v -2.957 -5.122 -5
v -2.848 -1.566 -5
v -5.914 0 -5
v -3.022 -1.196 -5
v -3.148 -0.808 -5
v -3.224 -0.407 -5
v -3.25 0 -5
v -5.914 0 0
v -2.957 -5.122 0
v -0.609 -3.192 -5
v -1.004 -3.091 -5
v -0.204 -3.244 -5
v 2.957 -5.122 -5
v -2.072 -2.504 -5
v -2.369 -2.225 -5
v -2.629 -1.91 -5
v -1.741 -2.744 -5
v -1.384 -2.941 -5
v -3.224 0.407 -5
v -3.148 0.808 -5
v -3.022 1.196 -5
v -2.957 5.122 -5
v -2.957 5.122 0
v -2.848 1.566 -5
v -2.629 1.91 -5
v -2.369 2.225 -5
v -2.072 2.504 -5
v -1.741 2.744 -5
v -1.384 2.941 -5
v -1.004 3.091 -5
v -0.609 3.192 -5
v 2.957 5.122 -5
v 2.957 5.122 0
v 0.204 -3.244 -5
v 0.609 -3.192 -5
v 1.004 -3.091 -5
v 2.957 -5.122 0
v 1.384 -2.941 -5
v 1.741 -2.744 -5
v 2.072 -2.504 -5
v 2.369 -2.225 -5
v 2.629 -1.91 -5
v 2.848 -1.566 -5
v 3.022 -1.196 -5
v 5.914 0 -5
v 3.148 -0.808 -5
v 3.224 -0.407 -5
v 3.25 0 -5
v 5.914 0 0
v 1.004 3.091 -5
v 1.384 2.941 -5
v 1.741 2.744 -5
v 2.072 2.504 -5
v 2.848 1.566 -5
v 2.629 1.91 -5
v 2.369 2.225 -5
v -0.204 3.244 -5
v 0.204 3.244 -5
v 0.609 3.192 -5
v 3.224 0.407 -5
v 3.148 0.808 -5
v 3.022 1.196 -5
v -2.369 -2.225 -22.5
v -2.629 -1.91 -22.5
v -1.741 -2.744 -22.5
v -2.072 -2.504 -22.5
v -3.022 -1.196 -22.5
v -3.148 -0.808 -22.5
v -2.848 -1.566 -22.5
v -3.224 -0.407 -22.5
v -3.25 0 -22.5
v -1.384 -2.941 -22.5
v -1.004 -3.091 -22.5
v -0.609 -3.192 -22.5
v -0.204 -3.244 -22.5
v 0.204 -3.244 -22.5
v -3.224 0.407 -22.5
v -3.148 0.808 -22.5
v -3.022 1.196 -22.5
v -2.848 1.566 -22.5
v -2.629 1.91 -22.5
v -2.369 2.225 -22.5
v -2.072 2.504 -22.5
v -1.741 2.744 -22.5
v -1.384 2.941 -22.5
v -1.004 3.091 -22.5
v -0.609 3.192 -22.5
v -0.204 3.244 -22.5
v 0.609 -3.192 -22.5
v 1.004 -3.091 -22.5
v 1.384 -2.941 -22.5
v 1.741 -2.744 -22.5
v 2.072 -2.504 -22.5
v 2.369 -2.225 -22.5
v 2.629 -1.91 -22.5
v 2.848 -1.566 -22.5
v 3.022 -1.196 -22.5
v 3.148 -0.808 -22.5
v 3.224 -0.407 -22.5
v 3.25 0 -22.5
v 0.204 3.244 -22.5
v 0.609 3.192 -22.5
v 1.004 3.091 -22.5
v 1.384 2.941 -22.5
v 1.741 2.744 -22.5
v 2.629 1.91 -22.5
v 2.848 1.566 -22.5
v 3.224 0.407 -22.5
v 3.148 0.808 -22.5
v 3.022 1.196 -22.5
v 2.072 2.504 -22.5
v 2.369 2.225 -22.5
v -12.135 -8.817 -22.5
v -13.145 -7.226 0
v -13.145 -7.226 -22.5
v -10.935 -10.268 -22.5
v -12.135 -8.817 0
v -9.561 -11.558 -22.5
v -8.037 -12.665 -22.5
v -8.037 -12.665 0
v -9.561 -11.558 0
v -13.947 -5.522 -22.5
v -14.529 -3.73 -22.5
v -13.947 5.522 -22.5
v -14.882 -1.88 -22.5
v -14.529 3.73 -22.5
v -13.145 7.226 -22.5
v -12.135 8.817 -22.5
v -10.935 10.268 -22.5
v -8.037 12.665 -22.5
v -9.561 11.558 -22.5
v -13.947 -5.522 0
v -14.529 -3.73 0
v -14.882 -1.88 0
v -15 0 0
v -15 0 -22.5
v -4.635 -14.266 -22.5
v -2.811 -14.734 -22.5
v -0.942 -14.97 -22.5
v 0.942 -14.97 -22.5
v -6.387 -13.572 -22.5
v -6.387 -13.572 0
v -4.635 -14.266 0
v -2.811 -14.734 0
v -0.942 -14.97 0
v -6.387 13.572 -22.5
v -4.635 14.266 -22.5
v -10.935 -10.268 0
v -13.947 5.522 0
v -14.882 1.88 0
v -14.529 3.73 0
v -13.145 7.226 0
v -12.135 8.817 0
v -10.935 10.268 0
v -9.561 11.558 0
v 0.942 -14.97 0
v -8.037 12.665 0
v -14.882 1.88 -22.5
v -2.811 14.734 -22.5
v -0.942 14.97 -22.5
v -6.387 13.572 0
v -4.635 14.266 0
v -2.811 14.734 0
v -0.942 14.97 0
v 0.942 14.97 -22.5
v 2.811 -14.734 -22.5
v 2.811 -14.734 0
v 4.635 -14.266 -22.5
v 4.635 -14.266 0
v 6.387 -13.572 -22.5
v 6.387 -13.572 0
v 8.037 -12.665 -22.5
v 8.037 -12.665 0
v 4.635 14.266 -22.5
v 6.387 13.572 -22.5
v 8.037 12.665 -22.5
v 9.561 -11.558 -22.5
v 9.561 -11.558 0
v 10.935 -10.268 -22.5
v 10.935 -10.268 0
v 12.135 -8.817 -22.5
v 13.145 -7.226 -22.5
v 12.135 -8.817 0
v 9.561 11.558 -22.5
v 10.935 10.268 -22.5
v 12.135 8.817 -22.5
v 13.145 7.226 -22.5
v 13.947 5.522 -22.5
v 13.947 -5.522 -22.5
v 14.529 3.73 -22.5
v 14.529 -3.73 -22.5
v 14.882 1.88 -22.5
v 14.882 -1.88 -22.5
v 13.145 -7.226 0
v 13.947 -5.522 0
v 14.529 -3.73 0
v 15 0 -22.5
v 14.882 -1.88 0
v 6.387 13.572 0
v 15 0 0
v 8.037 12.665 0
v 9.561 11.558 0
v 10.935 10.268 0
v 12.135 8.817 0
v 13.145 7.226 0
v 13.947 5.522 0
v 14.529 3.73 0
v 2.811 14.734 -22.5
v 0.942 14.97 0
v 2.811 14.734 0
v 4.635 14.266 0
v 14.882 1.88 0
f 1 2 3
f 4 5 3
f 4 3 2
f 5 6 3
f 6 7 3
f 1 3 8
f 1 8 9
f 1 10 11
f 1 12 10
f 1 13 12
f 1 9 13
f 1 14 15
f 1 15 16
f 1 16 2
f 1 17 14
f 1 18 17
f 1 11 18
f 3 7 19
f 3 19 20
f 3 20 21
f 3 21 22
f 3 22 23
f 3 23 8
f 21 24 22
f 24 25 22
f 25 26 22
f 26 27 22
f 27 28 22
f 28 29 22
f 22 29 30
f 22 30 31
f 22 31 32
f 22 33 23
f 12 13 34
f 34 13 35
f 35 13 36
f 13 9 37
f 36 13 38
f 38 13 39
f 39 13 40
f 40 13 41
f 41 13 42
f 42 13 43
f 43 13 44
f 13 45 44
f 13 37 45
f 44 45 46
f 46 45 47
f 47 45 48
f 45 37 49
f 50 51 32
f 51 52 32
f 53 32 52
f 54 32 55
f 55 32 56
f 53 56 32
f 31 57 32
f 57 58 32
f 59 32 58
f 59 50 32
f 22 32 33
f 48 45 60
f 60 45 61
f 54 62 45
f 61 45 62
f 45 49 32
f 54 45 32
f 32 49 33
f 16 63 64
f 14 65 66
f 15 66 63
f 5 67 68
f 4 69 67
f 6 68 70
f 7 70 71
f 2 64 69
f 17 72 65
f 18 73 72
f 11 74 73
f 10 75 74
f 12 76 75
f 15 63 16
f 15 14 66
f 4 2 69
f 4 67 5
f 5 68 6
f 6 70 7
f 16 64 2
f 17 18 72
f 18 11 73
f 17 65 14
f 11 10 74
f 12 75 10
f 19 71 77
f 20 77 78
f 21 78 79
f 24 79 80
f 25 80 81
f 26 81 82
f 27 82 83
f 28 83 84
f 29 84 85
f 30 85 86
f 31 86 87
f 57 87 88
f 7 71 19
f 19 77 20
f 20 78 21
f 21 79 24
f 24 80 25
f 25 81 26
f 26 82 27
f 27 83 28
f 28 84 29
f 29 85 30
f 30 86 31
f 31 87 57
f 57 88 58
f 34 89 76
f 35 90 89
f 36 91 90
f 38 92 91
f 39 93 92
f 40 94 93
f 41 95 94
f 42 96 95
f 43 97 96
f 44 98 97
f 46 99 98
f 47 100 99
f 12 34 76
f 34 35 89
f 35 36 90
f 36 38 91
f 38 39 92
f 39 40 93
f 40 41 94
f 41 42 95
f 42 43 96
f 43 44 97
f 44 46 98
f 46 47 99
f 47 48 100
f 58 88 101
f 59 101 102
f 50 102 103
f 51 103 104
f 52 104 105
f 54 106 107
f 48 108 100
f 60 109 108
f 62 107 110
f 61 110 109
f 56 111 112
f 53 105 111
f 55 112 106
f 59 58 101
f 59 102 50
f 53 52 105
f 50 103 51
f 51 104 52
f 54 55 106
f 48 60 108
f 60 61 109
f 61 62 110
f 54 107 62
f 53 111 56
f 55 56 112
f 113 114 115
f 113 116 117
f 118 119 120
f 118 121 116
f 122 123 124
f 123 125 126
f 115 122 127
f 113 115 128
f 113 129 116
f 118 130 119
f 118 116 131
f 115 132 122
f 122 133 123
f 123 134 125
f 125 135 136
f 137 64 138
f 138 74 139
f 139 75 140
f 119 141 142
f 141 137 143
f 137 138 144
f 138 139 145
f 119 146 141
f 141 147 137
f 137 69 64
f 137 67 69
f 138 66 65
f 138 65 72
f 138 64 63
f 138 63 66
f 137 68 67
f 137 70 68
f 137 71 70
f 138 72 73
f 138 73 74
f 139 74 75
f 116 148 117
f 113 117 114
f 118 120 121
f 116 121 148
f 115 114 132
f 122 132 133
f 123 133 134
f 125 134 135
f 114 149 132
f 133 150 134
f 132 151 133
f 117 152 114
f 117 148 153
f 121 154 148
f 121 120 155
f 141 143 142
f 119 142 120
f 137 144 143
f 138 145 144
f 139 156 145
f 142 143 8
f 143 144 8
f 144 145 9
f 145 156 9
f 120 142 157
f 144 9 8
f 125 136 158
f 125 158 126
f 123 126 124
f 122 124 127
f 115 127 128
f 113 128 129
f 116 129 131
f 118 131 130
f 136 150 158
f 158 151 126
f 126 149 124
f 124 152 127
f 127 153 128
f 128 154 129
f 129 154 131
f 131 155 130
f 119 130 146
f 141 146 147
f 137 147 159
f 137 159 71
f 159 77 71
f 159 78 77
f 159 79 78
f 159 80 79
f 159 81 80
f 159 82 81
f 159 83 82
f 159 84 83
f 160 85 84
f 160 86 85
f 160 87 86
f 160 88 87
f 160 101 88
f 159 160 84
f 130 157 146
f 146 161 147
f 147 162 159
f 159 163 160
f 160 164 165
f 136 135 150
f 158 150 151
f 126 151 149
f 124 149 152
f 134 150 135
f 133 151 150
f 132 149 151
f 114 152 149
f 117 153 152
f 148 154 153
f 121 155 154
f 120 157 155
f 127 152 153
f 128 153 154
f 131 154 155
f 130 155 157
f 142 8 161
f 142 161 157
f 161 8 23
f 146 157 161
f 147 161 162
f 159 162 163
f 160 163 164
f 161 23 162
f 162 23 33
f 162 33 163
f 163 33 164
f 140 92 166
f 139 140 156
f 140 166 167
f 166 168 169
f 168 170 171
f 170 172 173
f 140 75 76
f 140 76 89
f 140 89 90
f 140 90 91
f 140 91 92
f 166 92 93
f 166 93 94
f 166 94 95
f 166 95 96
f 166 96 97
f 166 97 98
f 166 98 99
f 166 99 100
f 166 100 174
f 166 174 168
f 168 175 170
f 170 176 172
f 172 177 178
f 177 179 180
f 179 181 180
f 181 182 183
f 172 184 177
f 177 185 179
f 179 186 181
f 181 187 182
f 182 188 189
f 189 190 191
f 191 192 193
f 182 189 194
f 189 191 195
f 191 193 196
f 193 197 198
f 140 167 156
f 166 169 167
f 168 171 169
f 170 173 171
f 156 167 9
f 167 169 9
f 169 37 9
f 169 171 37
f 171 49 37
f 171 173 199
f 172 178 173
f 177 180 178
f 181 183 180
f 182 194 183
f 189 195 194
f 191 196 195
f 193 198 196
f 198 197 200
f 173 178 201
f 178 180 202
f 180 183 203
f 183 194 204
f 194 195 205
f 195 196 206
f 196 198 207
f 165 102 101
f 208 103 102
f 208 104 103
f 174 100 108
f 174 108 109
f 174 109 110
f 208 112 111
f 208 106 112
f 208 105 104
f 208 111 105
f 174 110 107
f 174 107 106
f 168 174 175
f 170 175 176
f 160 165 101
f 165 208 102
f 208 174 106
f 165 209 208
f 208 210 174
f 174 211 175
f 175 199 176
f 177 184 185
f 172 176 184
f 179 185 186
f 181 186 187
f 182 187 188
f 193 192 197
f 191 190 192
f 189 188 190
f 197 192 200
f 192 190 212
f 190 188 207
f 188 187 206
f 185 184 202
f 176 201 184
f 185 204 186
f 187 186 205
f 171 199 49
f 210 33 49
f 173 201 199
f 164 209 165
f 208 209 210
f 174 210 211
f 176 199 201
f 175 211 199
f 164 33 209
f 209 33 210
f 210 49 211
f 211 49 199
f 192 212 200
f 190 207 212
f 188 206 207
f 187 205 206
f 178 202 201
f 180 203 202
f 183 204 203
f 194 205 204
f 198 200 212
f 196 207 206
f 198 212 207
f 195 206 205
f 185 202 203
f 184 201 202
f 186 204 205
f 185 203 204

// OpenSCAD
$fn = 50;

difference() {
	union() {
		translate(v = [0, 0, -22.5]) {
			cylinder(h = 22.5, r = 15.0);
		}
	}
	union() {
		translate(v = [0, 0, 0]) {
			rotate(a = [0, 0, 0]) {
				difference() {
					union() {
						translate(v = [0, 0, -5]) {
							linear_extrude(height = 5) {
								polygon(points = [[5.914249999999999, 0.0], [2.957125, 5.1218907443321156], [-2.9571249999999982, 5.1218907443321156], [-5.914249999999999, 7.242867331857232e-16], [-2.9571250000000022, -5.121890744332115], [2.9571249999999956, -5.121890744332118]]);
							}
						}
					}
					union();
				}
			}
		}
		#translate(v = [0, 0, -100.0]) {
			cylinder(h = 200, r = 3.25);
		}
	}
}
